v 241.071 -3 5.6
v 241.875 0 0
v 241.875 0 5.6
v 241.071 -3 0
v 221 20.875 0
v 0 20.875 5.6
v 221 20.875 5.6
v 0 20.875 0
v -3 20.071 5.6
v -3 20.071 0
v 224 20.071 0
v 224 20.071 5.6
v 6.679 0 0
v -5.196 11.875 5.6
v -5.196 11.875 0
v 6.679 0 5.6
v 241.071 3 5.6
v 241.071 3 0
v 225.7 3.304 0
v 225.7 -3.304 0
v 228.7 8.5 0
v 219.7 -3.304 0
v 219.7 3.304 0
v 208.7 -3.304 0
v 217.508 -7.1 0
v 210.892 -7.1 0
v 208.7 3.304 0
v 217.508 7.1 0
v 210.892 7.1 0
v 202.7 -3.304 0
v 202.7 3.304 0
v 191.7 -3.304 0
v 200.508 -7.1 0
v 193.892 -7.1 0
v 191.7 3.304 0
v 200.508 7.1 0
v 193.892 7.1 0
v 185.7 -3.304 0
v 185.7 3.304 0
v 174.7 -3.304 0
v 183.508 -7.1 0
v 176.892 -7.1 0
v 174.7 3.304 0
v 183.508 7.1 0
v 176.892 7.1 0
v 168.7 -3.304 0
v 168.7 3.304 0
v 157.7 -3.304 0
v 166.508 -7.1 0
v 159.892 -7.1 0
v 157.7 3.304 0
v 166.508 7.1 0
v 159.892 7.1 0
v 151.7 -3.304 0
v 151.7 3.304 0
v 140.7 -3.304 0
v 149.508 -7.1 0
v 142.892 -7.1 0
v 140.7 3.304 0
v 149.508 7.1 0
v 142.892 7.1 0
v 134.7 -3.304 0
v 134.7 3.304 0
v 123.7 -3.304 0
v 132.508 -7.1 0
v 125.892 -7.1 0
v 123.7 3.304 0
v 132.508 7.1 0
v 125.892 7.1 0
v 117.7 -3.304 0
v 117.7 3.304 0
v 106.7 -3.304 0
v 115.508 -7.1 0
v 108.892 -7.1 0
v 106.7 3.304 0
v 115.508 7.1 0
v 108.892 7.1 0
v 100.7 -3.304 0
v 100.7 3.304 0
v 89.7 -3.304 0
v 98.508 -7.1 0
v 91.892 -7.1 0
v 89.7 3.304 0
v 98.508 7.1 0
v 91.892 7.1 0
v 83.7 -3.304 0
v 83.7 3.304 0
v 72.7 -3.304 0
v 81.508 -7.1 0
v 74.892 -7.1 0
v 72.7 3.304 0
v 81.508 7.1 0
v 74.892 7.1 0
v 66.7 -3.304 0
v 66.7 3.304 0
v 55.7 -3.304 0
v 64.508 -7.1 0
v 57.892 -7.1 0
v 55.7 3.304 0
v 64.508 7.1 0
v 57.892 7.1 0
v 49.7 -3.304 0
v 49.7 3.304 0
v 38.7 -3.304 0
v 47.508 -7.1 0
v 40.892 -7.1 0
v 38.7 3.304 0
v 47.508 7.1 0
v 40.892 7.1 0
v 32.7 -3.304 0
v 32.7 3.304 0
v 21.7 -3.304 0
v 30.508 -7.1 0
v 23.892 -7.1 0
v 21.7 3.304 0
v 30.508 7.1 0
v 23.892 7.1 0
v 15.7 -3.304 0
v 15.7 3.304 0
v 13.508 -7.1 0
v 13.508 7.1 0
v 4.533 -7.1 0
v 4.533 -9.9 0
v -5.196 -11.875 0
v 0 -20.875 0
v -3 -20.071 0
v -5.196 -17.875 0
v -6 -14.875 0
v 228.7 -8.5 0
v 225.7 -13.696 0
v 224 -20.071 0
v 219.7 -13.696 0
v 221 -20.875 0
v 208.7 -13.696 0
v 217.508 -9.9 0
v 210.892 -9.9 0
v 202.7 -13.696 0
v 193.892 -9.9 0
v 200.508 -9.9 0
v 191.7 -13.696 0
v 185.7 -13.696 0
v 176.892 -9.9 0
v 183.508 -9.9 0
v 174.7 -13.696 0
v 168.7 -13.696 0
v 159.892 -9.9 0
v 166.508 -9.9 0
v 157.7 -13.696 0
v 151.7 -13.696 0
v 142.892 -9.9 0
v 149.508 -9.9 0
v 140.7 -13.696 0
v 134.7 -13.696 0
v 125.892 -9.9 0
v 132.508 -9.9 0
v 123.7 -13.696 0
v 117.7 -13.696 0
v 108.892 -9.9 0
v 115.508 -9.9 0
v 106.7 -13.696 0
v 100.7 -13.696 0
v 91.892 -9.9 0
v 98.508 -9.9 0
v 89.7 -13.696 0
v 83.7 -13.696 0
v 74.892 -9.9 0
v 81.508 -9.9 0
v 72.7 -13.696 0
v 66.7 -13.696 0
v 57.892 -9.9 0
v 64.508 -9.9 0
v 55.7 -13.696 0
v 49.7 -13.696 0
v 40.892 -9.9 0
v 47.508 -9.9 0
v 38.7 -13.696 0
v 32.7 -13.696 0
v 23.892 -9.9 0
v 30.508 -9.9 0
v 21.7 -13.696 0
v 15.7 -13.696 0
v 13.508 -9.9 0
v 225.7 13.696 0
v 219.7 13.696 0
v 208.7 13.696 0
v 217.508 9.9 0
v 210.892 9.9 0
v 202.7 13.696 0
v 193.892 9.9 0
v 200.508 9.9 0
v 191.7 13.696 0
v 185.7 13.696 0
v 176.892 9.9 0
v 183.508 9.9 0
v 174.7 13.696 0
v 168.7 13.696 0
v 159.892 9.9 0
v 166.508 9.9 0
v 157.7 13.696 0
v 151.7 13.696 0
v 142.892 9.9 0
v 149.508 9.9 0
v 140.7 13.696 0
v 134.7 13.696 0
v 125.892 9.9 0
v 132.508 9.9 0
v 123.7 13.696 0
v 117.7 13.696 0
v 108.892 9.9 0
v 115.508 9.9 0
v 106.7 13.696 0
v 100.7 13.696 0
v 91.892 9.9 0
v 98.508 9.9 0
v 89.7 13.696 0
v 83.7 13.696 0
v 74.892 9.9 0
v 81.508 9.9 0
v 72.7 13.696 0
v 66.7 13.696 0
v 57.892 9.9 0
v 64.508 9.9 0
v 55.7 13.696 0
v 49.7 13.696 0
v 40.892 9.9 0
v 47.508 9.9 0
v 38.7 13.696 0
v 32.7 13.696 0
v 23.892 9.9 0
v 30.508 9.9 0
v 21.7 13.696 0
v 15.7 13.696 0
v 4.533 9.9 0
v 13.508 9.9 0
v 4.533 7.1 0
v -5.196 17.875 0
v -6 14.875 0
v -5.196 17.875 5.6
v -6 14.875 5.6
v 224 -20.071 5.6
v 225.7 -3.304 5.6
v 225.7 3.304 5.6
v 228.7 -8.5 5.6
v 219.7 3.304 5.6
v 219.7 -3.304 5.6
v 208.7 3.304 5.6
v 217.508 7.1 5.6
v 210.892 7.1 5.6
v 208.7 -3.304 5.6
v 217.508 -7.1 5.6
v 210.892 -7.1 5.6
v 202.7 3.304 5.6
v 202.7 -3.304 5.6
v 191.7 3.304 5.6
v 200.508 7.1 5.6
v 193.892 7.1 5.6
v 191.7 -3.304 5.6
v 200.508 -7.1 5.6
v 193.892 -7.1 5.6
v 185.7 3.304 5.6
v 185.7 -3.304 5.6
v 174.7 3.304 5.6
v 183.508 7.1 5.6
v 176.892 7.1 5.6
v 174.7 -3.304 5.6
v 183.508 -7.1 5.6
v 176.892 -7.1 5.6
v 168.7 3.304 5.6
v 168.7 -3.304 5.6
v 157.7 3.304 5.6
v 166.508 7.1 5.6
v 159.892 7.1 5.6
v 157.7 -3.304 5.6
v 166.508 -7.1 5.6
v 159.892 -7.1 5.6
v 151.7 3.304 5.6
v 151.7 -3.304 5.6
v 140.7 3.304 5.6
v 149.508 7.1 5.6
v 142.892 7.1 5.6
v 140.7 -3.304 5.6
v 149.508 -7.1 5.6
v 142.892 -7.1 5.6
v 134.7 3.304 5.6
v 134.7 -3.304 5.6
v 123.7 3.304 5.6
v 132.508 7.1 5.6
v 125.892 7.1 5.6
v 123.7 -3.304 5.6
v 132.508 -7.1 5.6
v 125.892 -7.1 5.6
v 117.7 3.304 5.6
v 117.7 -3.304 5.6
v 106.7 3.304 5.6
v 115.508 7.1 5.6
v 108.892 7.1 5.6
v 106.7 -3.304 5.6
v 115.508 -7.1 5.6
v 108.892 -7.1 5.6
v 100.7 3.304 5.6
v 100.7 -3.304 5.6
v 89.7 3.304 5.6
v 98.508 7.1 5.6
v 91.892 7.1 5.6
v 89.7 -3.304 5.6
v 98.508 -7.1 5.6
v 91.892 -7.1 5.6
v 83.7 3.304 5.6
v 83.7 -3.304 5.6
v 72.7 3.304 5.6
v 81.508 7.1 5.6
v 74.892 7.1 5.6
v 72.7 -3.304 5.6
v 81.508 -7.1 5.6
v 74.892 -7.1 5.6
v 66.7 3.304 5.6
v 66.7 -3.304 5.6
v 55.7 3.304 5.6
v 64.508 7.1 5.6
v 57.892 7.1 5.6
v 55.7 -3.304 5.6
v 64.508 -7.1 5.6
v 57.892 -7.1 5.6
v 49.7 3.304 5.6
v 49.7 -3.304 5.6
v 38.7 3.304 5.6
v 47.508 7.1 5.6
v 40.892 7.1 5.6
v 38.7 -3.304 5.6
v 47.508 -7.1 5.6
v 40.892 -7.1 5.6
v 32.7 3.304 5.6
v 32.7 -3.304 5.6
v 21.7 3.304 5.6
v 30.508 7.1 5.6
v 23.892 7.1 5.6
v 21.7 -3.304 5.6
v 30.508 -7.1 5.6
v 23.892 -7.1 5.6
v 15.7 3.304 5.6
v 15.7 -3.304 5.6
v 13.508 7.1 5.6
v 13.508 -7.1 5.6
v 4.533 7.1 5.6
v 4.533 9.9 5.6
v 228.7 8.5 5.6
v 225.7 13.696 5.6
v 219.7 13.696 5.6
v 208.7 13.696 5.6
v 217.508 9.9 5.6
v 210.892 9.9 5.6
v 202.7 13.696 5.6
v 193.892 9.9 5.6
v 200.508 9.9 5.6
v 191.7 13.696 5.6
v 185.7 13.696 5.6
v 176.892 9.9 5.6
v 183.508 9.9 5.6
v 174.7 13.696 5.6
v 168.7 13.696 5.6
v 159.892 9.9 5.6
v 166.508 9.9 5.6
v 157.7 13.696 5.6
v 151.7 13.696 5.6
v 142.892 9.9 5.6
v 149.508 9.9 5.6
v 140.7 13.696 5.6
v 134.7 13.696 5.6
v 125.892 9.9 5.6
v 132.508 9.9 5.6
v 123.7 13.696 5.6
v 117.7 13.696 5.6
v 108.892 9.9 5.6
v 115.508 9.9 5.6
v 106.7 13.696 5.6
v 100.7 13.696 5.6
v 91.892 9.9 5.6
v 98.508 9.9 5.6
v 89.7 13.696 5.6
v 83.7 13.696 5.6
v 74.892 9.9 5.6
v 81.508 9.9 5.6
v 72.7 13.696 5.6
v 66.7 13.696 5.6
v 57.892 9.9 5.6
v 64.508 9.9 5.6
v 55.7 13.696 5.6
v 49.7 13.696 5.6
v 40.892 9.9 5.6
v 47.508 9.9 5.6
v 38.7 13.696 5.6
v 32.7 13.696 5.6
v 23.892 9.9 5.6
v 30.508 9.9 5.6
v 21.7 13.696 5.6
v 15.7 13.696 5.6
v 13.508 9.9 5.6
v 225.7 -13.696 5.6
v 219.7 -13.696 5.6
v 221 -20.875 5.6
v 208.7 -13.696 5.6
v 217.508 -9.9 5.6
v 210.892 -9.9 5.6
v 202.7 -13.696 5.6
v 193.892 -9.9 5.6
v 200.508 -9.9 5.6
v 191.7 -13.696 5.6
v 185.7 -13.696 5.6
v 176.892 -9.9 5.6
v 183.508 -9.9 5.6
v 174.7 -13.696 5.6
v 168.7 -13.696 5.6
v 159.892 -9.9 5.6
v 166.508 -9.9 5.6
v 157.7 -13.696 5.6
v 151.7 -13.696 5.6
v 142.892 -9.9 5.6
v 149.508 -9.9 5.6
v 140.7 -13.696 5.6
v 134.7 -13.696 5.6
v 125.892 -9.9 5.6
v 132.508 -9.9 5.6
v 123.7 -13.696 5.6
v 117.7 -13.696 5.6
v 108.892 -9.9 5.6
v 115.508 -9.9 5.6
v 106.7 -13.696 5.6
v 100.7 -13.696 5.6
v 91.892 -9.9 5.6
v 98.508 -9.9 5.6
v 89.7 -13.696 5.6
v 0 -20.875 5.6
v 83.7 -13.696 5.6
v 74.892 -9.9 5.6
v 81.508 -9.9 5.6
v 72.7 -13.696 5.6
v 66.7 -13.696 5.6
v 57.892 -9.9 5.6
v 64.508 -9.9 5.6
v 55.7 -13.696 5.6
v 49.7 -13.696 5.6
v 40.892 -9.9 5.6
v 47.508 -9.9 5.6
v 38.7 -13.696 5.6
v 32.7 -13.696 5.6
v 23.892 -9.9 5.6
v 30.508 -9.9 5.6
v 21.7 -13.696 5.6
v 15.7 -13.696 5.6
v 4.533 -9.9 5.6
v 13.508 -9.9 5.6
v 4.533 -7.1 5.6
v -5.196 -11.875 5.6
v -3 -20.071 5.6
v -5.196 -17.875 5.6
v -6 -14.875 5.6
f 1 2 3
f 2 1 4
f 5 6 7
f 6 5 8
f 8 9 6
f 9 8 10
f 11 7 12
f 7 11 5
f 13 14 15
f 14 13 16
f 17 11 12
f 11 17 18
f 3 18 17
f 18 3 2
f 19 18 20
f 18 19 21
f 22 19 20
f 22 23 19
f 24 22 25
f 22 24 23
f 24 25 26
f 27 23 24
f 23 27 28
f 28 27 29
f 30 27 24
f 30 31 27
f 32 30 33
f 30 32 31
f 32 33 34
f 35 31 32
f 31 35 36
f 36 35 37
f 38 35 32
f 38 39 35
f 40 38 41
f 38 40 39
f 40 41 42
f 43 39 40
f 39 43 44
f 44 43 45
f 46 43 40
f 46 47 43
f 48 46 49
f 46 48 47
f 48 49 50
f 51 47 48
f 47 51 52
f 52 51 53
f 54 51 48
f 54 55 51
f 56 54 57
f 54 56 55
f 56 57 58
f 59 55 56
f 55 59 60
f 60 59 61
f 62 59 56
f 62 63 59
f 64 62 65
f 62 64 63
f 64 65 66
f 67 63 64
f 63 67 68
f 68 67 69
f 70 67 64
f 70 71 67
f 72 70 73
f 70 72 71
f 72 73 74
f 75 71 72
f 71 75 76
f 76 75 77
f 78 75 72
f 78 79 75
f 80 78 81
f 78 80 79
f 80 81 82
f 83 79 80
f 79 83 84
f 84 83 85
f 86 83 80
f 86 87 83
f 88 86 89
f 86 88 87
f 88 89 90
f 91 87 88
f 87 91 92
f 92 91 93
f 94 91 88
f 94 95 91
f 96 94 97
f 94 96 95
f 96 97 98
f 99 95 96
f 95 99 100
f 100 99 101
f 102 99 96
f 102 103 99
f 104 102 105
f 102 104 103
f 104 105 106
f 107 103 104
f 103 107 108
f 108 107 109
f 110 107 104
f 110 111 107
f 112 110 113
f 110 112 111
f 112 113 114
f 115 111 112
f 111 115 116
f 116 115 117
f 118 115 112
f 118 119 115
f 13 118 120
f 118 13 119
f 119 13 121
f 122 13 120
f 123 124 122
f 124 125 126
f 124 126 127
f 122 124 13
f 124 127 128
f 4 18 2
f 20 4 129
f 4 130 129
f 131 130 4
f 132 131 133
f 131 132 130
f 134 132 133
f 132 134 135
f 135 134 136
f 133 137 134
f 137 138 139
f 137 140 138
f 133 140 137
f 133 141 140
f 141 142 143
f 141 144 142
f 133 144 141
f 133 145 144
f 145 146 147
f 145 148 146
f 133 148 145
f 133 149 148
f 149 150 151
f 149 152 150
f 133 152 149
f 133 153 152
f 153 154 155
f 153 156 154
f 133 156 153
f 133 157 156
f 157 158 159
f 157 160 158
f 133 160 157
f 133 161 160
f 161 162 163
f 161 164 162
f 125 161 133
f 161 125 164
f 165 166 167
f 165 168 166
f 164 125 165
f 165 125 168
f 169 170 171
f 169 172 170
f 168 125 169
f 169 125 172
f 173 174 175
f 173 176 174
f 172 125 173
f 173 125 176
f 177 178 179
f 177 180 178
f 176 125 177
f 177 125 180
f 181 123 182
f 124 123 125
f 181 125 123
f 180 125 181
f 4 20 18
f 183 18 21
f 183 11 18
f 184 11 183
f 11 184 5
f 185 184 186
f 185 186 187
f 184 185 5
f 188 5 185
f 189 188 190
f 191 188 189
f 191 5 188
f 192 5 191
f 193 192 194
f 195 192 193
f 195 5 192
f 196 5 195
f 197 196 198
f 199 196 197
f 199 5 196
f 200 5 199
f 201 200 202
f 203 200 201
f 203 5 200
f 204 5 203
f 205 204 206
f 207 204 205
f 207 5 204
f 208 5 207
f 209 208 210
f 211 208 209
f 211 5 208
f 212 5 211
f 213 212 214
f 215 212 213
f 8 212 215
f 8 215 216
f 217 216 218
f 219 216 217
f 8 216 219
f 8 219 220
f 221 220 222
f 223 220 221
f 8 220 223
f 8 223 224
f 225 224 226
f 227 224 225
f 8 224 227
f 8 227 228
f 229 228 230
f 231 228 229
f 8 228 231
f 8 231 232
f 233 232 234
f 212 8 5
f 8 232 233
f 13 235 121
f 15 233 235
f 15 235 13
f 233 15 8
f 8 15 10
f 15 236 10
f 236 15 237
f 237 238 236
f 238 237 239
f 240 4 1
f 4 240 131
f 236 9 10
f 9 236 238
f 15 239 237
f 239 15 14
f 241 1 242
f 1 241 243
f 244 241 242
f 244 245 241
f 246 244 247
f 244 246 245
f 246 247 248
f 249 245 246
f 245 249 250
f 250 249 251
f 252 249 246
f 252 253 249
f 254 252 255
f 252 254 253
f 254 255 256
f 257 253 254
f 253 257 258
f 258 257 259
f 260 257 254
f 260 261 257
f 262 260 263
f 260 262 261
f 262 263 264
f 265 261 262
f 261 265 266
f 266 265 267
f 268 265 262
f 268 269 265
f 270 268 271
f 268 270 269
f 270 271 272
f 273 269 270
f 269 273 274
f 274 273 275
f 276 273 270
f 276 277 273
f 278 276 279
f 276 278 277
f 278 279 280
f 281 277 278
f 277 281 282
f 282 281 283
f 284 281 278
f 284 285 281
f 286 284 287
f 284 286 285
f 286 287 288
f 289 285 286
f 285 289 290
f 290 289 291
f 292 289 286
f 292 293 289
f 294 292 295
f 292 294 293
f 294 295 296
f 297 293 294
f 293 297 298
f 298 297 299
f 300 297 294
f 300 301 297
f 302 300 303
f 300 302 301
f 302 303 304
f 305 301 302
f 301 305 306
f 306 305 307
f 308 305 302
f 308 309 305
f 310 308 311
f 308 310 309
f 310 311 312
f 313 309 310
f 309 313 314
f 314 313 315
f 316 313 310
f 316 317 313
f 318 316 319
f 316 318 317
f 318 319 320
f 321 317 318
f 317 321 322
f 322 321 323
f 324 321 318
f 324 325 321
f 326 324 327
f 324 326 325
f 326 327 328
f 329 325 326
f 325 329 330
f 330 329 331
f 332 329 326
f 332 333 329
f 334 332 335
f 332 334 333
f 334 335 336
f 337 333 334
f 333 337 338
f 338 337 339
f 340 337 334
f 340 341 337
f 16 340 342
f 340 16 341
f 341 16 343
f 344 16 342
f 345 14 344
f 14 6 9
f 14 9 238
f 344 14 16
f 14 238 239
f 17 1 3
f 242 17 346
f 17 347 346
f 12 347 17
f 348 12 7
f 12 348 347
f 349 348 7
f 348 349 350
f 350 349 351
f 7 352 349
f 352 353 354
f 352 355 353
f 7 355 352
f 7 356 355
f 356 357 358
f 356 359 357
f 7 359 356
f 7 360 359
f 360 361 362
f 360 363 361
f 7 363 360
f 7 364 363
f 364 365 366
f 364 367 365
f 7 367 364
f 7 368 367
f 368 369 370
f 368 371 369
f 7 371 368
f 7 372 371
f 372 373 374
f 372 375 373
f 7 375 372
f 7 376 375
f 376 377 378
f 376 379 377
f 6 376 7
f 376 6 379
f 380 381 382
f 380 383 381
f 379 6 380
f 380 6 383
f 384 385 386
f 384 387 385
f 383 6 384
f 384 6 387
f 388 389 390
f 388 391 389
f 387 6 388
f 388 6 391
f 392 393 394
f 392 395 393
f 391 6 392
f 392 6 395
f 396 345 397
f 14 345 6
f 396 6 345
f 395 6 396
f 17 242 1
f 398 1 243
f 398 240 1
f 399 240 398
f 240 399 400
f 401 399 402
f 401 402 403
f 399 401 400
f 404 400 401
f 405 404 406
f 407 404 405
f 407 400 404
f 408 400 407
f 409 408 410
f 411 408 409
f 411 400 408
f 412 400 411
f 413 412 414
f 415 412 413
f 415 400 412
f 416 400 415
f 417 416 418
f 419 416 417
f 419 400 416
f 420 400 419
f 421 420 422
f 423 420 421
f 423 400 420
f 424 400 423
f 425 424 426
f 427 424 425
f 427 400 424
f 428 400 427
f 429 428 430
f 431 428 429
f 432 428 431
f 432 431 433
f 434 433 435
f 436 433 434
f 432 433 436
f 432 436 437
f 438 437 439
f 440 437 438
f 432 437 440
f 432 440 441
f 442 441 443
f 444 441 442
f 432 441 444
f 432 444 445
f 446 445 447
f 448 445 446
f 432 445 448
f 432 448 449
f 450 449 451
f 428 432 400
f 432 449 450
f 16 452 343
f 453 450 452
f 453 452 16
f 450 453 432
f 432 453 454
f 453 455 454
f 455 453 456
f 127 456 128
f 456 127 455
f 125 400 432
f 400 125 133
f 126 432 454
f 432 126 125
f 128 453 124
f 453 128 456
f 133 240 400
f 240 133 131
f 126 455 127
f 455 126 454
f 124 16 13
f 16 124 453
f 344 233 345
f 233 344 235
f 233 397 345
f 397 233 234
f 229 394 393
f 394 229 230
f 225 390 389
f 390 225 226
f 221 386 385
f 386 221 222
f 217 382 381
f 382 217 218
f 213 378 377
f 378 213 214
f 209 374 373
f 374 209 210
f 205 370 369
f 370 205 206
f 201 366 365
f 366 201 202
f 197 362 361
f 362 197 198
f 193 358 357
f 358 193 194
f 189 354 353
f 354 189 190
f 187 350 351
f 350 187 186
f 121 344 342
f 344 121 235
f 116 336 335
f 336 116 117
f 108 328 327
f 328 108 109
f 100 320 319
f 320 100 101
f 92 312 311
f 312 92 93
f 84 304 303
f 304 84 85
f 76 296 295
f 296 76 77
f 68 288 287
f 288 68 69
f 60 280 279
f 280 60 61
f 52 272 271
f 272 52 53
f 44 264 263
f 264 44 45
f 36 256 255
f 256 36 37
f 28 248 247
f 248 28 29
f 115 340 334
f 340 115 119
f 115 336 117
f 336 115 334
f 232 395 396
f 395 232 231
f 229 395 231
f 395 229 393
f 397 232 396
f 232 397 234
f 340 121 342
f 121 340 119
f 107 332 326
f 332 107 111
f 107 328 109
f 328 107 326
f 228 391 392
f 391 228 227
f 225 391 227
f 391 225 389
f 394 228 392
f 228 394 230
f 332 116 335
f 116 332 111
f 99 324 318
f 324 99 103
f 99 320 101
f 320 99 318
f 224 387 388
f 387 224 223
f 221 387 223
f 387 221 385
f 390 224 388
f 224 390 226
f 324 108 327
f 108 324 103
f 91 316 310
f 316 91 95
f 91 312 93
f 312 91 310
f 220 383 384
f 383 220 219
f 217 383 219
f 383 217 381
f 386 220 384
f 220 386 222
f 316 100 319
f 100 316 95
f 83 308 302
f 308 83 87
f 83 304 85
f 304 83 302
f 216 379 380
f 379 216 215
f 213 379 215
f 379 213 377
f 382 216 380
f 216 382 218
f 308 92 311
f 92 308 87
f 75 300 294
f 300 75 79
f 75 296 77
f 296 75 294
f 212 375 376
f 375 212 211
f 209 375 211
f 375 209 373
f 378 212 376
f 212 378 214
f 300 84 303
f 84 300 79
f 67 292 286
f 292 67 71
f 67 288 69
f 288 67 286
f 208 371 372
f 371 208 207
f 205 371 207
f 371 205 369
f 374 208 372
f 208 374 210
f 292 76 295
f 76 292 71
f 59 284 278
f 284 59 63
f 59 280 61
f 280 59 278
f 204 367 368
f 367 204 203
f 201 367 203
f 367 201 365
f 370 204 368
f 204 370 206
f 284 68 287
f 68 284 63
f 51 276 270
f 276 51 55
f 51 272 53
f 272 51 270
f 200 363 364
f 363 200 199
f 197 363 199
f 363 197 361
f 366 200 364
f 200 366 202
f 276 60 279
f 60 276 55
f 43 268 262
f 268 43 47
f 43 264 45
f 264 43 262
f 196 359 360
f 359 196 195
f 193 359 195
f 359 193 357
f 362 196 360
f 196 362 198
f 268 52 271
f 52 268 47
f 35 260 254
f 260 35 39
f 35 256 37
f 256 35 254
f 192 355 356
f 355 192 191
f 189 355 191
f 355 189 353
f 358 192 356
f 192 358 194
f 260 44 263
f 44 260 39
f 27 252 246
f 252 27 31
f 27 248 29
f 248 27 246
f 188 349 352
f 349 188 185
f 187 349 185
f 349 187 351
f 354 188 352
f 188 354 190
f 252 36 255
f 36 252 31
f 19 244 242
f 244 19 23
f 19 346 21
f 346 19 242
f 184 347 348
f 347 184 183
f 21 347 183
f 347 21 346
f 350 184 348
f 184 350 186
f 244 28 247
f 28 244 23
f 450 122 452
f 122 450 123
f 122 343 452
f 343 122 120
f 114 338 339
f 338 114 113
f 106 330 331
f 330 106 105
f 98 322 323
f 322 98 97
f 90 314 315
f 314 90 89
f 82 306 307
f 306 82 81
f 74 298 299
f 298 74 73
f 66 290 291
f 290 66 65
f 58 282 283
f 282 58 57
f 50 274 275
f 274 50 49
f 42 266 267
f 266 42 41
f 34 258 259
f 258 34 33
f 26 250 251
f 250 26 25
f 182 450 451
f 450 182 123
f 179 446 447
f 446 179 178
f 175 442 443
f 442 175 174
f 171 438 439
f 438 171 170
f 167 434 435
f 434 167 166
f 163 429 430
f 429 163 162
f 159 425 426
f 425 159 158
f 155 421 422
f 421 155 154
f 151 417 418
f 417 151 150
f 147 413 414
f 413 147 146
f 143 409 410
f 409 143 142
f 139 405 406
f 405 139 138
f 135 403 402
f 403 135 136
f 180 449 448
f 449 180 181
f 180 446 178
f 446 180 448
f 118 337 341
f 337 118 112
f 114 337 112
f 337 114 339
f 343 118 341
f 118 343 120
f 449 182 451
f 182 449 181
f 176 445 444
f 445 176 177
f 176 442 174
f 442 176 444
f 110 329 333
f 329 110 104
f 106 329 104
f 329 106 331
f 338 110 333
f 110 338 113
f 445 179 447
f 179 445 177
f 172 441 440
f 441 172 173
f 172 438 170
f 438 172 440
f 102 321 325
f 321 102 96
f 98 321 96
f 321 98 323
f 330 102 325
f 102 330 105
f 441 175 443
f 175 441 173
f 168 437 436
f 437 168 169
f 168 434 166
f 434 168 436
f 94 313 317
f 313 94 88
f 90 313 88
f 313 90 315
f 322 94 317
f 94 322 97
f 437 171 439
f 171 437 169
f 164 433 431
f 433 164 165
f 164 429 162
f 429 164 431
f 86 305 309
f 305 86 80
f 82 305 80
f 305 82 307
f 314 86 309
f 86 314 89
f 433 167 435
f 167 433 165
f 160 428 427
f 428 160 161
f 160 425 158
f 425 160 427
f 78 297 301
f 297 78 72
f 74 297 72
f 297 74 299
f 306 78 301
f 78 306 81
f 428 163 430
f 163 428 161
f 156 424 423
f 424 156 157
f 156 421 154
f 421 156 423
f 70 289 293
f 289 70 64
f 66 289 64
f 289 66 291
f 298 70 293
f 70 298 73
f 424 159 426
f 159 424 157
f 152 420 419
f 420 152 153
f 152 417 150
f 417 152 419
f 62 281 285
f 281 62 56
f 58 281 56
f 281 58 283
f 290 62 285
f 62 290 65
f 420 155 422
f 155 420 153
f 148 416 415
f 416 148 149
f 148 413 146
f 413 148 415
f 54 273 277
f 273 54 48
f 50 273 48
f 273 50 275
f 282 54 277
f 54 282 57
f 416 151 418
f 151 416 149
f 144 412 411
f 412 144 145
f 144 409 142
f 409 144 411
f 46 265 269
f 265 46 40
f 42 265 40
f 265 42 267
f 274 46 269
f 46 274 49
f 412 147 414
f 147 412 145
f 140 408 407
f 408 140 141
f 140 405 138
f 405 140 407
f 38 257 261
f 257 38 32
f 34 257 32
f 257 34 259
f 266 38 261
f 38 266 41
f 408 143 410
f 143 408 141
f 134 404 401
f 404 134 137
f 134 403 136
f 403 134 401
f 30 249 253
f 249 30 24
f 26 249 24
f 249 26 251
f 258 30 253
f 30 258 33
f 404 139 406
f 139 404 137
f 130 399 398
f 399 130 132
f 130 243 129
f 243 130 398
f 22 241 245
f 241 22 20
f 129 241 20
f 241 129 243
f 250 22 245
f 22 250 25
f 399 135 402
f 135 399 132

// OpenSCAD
//
// initiative.scad
//

$fn=6;

//use <cadence.scad>;


// unit is mm


baldia = 17; // ball diameter
holdia = 12; // hole diameter
holrad = holdia / 2;
holdis = baldia; // hole distance, center to center
holdisc = baldia * 0.77;
//holdis1 = baldia * 1.3;
//trkdis = baldia * 1.11; // distance between the two tracks

//rad = 3.5 * baldia;
twi = 2.8; // track width
//out = rad * 0.65; // outcentering...

holcnt = 11; // hole count

hei = 5.6; // height
h4 = hei / 4;

boalen = (holcnt + 2) * baldia; // board length
boawid = baldia * 3.5;

bw2 = boawid / 4;


module base() {

  hull() {
    translate([ bw2, 0, 0 ]) cylinder(d=holdia, h=hei, $fn=12);
    translate([ boalen + bw2, 0, 0 ]) cylinder(d=holdia, h=hei, $fn=12);
    translate([ 0, bw2, 0 ]) cylinder(d=holdia, h=hei, $fn=12);
    translate([ boalen, bw2, 0 ]) cylinder(d=holdia, h=hei, $fn=12);
  }
  hull() {
    translate([ bw2, 0, 0 ]) cylinder(d=holdia, h=hei, $fn=12);
    translate([ boalen + bw2, 0, 0 ]) cylinder(d=holdia, h=hei, $fn=12);
    translate([ 0, -bw2, 0 ]) cylinder(d=holdia, h=hei, $fn=12);
    translate([ boalen, -bw2, 0 ]) cylinder(d=holdia, h=hei, $fn=12);
  }
}

module cyl() {
  translate([ 0, 0, -h4 ]) cylinder(d=holdia, h=hei * 2);
}
module fur(dis=holdis) { // furrow
  translate([ 0, 0, h4 ]) cube(size=[ dis, twi, hei * 2 ], center=true);
}

module track(cnt, dis=holdis, furrows=true, startFurrow=false, endFurrow=false) {
  for(i = [0:cnt - 1]) {
    if (i == 0 && startFurrow) translate([ -dis / 3, 0, 0 ]) fur(dis);
    translate([ i * dis, 0, 0 ]) cyl();
    if (i < cnt - 1 || endFurrow) translate([ i * dis + dis / 2, 0, 0 ]) fur(dis);
  }
}

difference() {

  base();

  d = holdis * 0.5;

  translate([ holdis * 1.1, d, 0 ])
    track(13, startFurrow=true);
  translate([ holdis * 1.1, d - holdis, 0 ])
    track(13, startFurrow=true);
}
